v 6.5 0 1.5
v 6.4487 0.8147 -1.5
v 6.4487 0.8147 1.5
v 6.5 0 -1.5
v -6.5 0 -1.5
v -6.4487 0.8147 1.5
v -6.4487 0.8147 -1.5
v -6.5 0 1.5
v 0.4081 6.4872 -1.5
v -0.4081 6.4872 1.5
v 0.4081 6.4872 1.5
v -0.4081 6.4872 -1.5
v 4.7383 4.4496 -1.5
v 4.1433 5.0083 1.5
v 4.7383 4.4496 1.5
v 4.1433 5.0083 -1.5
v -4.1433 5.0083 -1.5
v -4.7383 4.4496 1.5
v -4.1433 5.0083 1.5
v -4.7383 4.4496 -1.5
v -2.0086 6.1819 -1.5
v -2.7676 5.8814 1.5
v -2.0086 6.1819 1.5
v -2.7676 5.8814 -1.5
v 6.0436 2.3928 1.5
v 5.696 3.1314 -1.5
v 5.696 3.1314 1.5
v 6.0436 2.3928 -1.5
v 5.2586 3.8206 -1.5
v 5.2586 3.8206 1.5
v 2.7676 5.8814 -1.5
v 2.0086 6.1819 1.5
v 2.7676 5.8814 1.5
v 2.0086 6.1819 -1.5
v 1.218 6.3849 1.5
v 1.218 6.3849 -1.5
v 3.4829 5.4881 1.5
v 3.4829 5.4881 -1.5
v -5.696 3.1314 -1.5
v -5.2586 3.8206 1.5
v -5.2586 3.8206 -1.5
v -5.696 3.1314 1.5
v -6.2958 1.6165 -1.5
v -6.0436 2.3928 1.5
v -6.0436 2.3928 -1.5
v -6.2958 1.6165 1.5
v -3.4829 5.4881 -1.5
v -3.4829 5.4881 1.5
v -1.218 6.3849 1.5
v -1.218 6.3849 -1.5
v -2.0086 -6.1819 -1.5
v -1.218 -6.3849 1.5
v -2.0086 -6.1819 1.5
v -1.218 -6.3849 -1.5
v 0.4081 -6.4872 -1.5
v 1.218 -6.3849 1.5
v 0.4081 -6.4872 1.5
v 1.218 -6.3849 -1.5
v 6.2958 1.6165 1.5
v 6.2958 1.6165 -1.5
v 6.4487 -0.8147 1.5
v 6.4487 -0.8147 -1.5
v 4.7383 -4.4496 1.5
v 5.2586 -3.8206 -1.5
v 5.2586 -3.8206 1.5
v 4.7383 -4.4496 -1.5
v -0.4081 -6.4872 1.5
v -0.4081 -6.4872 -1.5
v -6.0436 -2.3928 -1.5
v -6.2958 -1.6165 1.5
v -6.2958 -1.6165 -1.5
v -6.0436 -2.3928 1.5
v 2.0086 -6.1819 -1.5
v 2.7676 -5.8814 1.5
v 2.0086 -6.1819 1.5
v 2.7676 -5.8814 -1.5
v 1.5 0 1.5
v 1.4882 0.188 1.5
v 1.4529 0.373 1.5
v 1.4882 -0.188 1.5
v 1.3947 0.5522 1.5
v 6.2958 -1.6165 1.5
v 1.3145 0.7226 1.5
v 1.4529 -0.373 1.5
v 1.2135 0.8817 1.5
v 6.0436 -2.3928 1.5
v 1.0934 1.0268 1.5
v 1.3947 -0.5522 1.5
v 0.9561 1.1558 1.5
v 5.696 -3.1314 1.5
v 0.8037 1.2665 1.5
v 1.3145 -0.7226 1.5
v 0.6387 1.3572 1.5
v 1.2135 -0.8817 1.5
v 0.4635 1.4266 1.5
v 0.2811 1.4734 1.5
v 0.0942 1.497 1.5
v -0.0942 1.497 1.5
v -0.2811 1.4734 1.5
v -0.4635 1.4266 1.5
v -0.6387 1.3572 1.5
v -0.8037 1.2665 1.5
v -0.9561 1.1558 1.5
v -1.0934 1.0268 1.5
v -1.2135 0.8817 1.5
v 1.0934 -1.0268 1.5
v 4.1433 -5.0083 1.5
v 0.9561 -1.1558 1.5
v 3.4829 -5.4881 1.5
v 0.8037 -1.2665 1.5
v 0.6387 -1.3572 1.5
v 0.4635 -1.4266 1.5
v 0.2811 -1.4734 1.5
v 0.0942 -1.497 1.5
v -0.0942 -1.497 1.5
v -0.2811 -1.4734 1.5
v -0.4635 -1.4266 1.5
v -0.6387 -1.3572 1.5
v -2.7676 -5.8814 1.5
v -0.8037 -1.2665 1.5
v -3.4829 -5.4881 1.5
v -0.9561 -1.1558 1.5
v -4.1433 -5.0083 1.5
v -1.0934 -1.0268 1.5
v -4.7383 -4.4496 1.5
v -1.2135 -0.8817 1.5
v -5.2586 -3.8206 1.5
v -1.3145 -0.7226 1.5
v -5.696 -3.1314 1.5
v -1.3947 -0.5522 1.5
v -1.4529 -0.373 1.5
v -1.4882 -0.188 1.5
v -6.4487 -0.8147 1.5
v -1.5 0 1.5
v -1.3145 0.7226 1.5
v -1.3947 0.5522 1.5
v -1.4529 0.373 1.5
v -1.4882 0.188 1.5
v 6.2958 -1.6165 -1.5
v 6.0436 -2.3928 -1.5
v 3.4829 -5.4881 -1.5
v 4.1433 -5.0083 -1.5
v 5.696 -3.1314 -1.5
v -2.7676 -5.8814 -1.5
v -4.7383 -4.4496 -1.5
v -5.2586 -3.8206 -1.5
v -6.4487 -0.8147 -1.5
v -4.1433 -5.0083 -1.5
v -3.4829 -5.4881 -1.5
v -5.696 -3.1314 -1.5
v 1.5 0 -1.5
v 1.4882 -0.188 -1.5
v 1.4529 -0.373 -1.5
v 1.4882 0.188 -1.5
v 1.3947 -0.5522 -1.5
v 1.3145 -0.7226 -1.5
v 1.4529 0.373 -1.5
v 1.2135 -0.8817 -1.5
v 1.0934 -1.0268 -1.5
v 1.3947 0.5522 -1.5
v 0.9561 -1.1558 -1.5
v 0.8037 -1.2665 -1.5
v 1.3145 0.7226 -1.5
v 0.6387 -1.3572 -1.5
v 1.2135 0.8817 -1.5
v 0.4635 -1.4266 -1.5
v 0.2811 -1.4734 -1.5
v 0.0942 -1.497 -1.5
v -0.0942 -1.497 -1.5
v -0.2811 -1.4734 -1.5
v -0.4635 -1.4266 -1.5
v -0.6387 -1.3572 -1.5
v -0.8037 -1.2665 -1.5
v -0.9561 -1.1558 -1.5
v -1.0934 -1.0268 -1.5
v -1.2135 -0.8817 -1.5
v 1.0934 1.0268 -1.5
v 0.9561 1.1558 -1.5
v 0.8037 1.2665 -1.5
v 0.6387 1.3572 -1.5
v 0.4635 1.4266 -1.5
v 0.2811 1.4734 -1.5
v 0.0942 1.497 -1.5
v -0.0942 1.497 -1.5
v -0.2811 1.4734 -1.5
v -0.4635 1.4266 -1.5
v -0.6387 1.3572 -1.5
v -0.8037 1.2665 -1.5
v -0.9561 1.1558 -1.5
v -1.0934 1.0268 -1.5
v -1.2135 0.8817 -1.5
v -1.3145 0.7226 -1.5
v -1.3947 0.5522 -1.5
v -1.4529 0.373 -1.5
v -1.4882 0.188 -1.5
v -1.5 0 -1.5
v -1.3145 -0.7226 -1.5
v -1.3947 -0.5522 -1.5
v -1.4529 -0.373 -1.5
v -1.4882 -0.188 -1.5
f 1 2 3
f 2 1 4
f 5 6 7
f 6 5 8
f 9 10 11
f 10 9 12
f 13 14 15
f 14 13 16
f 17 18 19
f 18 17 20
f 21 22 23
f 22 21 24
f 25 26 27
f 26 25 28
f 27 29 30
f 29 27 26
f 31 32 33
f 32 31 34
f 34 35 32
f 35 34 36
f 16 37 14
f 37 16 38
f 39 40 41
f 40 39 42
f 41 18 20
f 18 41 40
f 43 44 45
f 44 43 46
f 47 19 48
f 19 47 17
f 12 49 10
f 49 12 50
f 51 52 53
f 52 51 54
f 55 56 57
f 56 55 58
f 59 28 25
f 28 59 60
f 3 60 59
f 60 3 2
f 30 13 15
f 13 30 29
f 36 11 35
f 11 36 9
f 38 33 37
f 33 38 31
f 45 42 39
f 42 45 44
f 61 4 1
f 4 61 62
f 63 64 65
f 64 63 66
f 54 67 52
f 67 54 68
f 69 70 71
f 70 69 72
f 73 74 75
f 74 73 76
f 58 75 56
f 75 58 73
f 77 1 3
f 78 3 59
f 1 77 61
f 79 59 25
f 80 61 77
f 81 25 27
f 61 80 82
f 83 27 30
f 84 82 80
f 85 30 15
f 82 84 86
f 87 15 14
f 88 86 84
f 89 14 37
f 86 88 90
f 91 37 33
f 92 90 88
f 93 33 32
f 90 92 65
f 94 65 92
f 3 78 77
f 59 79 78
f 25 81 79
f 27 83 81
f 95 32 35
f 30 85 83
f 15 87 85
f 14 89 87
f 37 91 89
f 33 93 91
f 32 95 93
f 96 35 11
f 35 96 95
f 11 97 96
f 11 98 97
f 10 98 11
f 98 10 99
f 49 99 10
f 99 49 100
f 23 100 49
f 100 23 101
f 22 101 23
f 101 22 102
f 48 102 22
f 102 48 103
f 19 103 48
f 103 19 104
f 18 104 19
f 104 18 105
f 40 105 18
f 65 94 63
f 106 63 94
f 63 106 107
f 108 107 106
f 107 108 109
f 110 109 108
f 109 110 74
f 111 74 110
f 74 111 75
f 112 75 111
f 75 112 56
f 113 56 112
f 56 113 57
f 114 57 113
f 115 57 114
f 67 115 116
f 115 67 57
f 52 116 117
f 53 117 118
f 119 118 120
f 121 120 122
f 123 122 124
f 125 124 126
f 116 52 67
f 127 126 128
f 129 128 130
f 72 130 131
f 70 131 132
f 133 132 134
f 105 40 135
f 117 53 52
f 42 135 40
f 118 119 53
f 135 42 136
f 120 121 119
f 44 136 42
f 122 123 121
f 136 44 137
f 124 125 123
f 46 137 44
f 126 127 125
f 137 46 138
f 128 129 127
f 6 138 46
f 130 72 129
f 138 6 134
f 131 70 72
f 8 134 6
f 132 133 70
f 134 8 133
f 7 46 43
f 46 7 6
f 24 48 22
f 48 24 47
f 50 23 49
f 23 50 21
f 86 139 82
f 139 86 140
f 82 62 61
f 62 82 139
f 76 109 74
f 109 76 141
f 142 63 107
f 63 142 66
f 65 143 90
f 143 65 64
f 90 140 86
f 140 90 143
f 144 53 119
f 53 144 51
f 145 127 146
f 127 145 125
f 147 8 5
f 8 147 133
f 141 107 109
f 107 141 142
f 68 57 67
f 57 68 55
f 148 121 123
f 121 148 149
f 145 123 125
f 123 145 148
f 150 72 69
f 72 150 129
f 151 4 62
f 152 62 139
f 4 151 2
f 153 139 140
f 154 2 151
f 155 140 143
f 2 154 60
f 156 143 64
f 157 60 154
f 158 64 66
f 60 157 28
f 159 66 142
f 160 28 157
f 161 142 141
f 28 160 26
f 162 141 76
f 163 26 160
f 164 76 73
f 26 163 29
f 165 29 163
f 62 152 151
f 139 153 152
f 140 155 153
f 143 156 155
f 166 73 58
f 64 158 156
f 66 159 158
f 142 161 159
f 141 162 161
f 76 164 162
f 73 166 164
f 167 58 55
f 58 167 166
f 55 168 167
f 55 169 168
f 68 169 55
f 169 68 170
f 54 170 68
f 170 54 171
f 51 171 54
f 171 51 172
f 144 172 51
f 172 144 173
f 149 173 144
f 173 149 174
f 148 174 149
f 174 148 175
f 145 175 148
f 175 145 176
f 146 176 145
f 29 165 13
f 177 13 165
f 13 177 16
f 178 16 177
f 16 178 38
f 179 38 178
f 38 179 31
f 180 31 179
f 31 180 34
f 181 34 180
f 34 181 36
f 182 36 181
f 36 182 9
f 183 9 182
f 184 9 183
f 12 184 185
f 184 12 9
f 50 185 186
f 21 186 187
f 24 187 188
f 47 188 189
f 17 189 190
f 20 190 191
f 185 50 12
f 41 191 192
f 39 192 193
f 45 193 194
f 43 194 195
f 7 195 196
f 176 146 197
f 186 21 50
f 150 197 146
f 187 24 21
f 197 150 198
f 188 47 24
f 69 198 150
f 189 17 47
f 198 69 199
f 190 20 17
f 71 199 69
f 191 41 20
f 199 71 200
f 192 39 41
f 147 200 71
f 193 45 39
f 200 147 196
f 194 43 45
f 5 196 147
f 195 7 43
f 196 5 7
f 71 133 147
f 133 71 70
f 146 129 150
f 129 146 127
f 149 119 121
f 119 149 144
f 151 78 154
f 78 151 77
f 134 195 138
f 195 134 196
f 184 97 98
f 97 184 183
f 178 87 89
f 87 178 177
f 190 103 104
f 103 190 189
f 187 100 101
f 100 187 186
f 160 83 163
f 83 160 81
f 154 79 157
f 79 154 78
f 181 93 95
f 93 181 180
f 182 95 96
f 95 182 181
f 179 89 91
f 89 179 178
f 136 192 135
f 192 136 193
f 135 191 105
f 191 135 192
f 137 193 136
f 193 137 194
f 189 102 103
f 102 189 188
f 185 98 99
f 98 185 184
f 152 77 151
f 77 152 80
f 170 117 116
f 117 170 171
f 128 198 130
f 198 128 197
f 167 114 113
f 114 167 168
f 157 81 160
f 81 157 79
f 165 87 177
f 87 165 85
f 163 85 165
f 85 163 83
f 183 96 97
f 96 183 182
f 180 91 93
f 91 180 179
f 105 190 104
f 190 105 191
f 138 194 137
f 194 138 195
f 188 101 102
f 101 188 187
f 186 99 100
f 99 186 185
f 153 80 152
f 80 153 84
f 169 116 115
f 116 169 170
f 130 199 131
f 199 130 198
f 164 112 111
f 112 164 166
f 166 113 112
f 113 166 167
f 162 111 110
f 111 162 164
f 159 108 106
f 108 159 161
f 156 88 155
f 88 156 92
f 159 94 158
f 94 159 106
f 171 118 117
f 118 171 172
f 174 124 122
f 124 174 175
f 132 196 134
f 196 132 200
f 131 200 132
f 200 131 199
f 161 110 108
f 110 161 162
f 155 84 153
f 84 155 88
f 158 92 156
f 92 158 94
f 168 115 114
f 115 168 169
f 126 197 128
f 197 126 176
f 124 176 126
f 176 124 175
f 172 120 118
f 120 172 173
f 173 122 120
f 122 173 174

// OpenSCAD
$fn = 50;


difference() {
	union() {
		translate(v = [0, 0, -1.5000000000]) {
			cylinder(h = 3, r = 6.5000000000);
		}
	}
	union() {
		translate(v = [0, 0, -100.0000000000]) {
			cylinder(h = 200, r = 1.5000000000);
		}
	}
}
